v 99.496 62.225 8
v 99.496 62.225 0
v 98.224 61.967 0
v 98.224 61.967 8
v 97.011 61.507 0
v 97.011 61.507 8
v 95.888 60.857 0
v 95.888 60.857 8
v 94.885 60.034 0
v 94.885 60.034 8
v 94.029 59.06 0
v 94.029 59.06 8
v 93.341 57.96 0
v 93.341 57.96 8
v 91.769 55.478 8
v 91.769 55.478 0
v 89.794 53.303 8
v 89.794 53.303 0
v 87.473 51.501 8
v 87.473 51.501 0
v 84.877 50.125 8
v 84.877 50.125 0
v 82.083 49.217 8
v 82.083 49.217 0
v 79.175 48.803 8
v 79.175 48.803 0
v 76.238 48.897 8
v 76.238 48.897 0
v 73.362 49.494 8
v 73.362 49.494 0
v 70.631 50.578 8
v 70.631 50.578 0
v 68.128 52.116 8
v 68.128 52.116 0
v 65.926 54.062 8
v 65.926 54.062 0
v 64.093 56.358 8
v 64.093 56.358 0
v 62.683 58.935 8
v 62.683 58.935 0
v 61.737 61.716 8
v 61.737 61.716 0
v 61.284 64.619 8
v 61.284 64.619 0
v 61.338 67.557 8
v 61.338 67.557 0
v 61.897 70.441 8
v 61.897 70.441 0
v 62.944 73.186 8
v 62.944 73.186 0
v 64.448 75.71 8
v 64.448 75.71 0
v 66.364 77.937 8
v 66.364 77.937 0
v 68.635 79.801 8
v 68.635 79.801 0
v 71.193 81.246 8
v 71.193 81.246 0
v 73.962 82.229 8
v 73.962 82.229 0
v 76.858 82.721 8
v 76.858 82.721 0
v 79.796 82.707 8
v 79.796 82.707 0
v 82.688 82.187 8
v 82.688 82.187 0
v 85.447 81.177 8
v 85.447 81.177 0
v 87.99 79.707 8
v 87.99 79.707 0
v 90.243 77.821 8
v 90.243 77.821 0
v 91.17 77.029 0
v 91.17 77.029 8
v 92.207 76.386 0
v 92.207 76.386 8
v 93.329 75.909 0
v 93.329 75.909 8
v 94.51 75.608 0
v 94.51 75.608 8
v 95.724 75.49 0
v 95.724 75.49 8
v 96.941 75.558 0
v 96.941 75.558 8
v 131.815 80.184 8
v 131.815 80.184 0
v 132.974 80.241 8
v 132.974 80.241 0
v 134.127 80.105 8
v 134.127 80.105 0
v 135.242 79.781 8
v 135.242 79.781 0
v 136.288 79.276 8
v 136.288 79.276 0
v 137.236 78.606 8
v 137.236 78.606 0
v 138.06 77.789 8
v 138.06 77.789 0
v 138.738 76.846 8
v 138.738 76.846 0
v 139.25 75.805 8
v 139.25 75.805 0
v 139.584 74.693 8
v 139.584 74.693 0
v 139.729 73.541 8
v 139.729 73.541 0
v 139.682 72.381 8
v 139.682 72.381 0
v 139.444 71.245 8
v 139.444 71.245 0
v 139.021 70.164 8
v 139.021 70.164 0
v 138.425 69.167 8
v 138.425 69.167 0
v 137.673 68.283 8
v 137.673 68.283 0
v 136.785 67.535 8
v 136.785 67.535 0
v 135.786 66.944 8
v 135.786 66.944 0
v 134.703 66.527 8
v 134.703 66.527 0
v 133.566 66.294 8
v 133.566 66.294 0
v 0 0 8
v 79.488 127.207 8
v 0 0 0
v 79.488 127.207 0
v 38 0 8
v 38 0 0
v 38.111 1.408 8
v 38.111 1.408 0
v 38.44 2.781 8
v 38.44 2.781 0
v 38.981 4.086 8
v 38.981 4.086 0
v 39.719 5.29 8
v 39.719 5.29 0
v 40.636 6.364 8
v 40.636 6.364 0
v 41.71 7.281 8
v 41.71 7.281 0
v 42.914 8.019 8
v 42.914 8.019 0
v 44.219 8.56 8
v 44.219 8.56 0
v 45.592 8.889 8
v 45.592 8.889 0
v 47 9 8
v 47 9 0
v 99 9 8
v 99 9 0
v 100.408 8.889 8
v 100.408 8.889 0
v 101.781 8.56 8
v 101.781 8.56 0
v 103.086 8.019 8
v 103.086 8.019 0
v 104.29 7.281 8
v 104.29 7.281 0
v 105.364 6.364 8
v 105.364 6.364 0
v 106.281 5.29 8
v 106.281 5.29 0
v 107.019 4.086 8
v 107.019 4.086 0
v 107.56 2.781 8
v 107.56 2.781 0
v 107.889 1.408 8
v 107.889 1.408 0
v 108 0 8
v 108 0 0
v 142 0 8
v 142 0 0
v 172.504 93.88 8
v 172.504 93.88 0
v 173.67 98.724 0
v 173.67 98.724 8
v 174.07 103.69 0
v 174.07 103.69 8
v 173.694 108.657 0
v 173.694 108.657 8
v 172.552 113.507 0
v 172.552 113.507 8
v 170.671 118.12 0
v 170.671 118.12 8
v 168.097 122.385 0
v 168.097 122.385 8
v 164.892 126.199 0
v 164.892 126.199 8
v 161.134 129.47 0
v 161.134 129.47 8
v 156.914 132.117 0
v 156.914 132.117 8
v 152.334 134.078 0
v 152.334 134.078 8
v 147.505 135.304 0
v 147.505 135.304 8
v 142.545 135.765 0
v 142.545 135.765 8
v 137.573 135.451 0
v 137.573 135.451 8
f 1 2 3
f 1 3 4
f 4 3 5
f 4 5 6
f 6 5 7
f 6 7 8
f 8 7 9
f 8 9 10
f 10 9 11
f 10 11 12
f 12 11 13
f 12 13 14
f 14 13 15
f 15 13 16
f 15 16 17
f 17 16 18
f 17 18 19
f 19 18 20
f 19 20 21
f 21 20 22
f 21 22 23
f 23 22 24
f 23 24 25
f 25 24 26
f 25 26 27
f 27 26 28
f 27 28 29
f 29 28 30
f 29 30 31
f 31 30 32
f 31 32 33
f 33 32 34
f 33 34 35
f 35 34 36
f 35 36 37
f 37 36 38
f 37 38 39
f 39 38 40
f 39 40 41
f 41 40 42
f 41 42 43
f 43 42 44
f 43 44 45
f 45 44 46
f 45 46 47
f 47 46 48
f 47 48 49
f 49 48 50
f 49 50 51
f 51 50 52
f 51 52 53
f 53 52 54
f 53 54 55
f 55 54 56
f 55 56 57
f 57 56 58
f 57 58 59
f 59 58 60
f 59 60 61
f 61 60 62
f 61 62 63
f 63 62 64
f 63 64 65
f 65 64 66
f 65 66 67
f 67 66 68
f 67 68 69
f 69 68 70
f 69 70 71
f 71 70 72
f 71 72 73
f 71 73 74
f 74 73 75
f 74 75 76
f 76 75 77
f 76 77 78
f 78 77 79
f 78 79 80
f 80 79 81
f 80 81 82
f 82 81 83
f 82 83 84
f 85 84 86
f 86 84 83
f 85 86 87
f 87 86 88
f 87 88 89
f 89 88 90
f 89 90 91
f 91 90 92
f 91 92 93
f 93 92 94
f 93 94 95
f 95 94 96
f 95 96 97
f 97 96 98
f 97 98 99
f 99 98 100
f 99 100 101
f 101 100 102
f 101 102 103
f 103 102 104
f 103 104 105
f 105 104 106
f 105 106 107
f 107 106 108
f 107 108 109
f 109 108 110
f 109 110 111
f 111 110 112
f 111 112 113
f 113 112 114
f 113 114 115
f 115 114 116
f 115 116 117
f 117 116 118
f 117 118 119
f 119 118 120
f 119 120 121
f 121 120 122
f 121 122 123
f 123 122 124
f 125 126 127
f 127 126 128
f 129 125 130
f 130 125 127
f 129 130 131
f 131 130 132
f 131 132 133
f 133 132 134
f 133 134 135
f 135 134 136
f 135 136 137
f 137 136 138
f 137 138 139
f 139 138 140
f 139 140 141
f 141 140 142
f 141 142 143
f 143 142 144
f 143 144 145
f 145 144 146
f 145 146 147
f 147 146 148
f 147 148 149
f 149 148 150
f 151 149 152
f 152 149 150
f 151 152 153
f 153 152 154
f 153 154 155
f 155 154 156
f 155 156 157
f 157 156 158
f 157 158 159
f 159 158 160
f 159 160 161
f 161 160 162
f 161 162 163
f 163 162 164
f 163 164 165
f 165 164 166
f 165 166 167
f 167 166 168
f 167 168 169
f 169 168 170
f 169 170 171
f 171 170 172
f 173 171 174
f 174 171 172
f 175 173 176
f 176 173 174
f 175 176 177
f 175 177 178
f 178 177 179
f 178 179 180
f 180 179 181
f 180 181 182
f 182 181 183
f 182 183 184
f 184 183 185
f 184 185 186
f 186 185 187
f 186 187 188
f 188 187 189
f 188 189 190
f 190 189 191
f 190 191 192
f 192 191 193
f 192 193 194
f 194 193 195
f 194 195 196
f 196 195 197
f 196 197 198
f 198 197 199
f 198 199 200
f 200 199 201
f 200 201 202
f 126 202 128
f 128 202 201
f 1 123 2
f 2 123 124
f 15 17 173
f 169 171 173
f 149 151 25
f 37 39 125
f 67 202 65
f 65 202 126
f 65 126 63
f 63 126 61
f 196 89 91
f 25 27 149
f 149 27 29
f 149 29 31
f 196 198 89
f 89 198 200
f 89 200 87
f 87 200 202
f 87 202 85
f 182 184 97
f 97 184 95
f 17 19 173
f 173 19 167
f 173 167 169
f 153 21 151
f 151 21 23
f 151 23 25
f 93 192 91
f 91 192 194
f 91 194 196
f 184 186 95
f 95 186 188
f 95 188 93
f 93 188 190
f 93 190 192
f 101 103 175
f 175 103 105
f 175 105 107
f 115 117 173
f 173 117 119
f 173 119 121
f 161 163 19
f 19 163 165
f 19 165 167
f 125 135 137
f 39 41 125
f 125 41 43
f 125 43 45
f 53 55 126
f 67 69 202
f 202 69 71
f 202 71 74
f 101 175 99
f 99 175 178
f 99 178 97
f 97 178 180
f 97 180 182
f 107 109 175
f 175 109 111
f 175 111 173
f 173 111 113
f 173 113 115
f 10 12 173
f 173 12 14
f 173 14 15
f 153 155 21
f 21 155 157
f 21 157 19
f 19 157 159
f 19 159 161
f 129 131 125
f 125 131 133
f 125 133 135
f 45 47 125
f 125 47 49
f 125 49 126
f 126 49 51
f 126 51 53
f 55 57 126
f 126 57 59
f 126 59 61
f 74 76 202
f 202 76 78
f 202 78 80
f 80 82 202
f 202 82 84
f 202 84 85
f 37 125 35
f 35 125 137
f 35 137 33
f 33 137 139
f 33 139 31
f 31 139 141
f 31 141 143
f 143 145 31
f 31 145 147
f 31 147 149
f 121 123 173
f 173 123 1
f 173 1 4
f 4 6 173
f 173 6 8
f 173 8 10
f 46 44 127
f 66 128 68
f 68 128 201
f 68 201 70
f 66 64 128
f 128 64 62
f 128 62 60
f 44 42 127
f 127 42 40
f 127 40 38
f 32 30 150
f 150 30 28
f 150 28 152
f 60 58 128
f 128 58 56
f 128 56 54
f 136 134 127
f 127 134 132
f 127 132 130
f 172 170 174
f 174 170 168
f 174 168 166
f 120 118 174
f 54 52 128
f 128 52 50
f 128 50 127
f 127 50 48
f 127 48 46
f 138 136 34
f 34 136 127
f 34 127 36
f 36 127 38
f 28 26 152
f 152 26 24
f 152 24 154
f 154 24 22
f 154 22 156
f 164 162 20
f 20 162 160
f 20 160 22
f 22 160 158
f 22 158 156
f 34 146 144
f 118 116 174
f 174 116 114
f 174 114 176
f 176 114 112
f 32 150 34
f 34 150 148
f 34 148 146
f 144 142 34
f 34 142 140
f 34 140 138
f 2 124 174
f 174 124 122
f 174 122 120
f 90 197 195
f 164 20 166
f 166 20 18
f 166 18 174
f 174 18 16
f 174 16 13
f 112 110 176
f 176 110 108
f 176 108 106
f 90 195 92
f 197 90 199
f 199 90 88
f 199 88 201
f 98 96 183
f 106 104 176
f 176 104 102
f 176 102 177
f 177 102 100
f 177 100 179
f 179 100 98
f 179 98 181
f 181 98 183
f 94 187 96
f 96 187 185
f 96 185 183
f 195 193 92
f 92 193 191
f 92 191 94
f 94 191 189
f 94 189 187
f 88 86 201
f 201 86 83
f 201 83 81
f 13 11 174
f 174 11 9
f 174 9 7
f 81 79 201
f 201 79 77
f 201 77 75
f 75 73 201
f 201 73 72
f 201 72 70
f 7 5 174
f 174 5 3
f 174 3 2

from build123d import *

# Parameters (mm, degrees)
BOSS_EXTRUDE1_DEPTH = 8


with BuildPart() as part:
    # Sketch2 → Boss-Extrude1 (new body)
    with BuildSketch(Plane.XY):
        with BuildLine():
            Line((79.487889635, 127.207214423), (37.624267761, 60.211414827))
            Line((37.624267761, 60.211414827), (61.402056741, 63.469750476))
            ThreePointArc((61.402056741, 63.469750476), (70.67132686, 80.997615577), (90.243088989, 77.820895466))
            ThreePointArc((90.243088989, 77.820895466), (93.32868479, 75.909168155), (96.941453957, 75.557740071))
            Line((96.941453957, 75.557740071), (131.814885044, 80.183965492))
            ThreePointArc((131.814885044, 80.183965492), (136.979315131, 78.811568483), (139.670612135, 74.195105322))
            Line((139.670612135, 74.195105322), (167.339393539, 77.986634336))
            Line((167.339393539, 77.986634336), (172.50354814, 93.880267937))
            ThreePointArc((172.50354814, 93.880267937), (166.569139078, 124.354715336), (137.573015724, 135.451290736))
            Line((137.573015724, 135.451290736), (79.487889635, 127.207214423))
        make_face()
        with BuildLine():
            Line((37.624267761, 60.211414827), (0, 0))
            Line((0, 0), (38, 0))
            ThreePointArc((38, 0), (40.636038969, 6.363961031), (47, 9))
            Line((47, 9), (99, 9))
            ThreePointArc((99, 9), (105.363961031, 6.363961031), (108, 0))
            Line((108, 0), (142, 0))
            Line((142, 0), (167.339393539, 77.986634336))
            Line((167.339393539, 77.986634336), (139.670612135, 74.195105322))
            ThreePointArc((139.670612135, 74.195105322), (138.274512361, 68.964746138), (133.565613448, 66.29416141))
            Line((133.565613448, 66.29416141), (99.495664198, 62.224794823))
            ThreePointArc((99.495664198, 62.224794823), (95.888310918, 60.857089082), (93.340518027, 57.960130667))
            ThreePointArc((93.340518027, 57.960130667), (75.354717379, 49.025178799), (61.402056741, 63.469750476))
            Line((61.402056741, 63.469750476), (37.624267761, 60.211414827))
        make_face()
    extrude(amount=BOSS_EXTRUDE1_DEPTH)


solid = part.part
